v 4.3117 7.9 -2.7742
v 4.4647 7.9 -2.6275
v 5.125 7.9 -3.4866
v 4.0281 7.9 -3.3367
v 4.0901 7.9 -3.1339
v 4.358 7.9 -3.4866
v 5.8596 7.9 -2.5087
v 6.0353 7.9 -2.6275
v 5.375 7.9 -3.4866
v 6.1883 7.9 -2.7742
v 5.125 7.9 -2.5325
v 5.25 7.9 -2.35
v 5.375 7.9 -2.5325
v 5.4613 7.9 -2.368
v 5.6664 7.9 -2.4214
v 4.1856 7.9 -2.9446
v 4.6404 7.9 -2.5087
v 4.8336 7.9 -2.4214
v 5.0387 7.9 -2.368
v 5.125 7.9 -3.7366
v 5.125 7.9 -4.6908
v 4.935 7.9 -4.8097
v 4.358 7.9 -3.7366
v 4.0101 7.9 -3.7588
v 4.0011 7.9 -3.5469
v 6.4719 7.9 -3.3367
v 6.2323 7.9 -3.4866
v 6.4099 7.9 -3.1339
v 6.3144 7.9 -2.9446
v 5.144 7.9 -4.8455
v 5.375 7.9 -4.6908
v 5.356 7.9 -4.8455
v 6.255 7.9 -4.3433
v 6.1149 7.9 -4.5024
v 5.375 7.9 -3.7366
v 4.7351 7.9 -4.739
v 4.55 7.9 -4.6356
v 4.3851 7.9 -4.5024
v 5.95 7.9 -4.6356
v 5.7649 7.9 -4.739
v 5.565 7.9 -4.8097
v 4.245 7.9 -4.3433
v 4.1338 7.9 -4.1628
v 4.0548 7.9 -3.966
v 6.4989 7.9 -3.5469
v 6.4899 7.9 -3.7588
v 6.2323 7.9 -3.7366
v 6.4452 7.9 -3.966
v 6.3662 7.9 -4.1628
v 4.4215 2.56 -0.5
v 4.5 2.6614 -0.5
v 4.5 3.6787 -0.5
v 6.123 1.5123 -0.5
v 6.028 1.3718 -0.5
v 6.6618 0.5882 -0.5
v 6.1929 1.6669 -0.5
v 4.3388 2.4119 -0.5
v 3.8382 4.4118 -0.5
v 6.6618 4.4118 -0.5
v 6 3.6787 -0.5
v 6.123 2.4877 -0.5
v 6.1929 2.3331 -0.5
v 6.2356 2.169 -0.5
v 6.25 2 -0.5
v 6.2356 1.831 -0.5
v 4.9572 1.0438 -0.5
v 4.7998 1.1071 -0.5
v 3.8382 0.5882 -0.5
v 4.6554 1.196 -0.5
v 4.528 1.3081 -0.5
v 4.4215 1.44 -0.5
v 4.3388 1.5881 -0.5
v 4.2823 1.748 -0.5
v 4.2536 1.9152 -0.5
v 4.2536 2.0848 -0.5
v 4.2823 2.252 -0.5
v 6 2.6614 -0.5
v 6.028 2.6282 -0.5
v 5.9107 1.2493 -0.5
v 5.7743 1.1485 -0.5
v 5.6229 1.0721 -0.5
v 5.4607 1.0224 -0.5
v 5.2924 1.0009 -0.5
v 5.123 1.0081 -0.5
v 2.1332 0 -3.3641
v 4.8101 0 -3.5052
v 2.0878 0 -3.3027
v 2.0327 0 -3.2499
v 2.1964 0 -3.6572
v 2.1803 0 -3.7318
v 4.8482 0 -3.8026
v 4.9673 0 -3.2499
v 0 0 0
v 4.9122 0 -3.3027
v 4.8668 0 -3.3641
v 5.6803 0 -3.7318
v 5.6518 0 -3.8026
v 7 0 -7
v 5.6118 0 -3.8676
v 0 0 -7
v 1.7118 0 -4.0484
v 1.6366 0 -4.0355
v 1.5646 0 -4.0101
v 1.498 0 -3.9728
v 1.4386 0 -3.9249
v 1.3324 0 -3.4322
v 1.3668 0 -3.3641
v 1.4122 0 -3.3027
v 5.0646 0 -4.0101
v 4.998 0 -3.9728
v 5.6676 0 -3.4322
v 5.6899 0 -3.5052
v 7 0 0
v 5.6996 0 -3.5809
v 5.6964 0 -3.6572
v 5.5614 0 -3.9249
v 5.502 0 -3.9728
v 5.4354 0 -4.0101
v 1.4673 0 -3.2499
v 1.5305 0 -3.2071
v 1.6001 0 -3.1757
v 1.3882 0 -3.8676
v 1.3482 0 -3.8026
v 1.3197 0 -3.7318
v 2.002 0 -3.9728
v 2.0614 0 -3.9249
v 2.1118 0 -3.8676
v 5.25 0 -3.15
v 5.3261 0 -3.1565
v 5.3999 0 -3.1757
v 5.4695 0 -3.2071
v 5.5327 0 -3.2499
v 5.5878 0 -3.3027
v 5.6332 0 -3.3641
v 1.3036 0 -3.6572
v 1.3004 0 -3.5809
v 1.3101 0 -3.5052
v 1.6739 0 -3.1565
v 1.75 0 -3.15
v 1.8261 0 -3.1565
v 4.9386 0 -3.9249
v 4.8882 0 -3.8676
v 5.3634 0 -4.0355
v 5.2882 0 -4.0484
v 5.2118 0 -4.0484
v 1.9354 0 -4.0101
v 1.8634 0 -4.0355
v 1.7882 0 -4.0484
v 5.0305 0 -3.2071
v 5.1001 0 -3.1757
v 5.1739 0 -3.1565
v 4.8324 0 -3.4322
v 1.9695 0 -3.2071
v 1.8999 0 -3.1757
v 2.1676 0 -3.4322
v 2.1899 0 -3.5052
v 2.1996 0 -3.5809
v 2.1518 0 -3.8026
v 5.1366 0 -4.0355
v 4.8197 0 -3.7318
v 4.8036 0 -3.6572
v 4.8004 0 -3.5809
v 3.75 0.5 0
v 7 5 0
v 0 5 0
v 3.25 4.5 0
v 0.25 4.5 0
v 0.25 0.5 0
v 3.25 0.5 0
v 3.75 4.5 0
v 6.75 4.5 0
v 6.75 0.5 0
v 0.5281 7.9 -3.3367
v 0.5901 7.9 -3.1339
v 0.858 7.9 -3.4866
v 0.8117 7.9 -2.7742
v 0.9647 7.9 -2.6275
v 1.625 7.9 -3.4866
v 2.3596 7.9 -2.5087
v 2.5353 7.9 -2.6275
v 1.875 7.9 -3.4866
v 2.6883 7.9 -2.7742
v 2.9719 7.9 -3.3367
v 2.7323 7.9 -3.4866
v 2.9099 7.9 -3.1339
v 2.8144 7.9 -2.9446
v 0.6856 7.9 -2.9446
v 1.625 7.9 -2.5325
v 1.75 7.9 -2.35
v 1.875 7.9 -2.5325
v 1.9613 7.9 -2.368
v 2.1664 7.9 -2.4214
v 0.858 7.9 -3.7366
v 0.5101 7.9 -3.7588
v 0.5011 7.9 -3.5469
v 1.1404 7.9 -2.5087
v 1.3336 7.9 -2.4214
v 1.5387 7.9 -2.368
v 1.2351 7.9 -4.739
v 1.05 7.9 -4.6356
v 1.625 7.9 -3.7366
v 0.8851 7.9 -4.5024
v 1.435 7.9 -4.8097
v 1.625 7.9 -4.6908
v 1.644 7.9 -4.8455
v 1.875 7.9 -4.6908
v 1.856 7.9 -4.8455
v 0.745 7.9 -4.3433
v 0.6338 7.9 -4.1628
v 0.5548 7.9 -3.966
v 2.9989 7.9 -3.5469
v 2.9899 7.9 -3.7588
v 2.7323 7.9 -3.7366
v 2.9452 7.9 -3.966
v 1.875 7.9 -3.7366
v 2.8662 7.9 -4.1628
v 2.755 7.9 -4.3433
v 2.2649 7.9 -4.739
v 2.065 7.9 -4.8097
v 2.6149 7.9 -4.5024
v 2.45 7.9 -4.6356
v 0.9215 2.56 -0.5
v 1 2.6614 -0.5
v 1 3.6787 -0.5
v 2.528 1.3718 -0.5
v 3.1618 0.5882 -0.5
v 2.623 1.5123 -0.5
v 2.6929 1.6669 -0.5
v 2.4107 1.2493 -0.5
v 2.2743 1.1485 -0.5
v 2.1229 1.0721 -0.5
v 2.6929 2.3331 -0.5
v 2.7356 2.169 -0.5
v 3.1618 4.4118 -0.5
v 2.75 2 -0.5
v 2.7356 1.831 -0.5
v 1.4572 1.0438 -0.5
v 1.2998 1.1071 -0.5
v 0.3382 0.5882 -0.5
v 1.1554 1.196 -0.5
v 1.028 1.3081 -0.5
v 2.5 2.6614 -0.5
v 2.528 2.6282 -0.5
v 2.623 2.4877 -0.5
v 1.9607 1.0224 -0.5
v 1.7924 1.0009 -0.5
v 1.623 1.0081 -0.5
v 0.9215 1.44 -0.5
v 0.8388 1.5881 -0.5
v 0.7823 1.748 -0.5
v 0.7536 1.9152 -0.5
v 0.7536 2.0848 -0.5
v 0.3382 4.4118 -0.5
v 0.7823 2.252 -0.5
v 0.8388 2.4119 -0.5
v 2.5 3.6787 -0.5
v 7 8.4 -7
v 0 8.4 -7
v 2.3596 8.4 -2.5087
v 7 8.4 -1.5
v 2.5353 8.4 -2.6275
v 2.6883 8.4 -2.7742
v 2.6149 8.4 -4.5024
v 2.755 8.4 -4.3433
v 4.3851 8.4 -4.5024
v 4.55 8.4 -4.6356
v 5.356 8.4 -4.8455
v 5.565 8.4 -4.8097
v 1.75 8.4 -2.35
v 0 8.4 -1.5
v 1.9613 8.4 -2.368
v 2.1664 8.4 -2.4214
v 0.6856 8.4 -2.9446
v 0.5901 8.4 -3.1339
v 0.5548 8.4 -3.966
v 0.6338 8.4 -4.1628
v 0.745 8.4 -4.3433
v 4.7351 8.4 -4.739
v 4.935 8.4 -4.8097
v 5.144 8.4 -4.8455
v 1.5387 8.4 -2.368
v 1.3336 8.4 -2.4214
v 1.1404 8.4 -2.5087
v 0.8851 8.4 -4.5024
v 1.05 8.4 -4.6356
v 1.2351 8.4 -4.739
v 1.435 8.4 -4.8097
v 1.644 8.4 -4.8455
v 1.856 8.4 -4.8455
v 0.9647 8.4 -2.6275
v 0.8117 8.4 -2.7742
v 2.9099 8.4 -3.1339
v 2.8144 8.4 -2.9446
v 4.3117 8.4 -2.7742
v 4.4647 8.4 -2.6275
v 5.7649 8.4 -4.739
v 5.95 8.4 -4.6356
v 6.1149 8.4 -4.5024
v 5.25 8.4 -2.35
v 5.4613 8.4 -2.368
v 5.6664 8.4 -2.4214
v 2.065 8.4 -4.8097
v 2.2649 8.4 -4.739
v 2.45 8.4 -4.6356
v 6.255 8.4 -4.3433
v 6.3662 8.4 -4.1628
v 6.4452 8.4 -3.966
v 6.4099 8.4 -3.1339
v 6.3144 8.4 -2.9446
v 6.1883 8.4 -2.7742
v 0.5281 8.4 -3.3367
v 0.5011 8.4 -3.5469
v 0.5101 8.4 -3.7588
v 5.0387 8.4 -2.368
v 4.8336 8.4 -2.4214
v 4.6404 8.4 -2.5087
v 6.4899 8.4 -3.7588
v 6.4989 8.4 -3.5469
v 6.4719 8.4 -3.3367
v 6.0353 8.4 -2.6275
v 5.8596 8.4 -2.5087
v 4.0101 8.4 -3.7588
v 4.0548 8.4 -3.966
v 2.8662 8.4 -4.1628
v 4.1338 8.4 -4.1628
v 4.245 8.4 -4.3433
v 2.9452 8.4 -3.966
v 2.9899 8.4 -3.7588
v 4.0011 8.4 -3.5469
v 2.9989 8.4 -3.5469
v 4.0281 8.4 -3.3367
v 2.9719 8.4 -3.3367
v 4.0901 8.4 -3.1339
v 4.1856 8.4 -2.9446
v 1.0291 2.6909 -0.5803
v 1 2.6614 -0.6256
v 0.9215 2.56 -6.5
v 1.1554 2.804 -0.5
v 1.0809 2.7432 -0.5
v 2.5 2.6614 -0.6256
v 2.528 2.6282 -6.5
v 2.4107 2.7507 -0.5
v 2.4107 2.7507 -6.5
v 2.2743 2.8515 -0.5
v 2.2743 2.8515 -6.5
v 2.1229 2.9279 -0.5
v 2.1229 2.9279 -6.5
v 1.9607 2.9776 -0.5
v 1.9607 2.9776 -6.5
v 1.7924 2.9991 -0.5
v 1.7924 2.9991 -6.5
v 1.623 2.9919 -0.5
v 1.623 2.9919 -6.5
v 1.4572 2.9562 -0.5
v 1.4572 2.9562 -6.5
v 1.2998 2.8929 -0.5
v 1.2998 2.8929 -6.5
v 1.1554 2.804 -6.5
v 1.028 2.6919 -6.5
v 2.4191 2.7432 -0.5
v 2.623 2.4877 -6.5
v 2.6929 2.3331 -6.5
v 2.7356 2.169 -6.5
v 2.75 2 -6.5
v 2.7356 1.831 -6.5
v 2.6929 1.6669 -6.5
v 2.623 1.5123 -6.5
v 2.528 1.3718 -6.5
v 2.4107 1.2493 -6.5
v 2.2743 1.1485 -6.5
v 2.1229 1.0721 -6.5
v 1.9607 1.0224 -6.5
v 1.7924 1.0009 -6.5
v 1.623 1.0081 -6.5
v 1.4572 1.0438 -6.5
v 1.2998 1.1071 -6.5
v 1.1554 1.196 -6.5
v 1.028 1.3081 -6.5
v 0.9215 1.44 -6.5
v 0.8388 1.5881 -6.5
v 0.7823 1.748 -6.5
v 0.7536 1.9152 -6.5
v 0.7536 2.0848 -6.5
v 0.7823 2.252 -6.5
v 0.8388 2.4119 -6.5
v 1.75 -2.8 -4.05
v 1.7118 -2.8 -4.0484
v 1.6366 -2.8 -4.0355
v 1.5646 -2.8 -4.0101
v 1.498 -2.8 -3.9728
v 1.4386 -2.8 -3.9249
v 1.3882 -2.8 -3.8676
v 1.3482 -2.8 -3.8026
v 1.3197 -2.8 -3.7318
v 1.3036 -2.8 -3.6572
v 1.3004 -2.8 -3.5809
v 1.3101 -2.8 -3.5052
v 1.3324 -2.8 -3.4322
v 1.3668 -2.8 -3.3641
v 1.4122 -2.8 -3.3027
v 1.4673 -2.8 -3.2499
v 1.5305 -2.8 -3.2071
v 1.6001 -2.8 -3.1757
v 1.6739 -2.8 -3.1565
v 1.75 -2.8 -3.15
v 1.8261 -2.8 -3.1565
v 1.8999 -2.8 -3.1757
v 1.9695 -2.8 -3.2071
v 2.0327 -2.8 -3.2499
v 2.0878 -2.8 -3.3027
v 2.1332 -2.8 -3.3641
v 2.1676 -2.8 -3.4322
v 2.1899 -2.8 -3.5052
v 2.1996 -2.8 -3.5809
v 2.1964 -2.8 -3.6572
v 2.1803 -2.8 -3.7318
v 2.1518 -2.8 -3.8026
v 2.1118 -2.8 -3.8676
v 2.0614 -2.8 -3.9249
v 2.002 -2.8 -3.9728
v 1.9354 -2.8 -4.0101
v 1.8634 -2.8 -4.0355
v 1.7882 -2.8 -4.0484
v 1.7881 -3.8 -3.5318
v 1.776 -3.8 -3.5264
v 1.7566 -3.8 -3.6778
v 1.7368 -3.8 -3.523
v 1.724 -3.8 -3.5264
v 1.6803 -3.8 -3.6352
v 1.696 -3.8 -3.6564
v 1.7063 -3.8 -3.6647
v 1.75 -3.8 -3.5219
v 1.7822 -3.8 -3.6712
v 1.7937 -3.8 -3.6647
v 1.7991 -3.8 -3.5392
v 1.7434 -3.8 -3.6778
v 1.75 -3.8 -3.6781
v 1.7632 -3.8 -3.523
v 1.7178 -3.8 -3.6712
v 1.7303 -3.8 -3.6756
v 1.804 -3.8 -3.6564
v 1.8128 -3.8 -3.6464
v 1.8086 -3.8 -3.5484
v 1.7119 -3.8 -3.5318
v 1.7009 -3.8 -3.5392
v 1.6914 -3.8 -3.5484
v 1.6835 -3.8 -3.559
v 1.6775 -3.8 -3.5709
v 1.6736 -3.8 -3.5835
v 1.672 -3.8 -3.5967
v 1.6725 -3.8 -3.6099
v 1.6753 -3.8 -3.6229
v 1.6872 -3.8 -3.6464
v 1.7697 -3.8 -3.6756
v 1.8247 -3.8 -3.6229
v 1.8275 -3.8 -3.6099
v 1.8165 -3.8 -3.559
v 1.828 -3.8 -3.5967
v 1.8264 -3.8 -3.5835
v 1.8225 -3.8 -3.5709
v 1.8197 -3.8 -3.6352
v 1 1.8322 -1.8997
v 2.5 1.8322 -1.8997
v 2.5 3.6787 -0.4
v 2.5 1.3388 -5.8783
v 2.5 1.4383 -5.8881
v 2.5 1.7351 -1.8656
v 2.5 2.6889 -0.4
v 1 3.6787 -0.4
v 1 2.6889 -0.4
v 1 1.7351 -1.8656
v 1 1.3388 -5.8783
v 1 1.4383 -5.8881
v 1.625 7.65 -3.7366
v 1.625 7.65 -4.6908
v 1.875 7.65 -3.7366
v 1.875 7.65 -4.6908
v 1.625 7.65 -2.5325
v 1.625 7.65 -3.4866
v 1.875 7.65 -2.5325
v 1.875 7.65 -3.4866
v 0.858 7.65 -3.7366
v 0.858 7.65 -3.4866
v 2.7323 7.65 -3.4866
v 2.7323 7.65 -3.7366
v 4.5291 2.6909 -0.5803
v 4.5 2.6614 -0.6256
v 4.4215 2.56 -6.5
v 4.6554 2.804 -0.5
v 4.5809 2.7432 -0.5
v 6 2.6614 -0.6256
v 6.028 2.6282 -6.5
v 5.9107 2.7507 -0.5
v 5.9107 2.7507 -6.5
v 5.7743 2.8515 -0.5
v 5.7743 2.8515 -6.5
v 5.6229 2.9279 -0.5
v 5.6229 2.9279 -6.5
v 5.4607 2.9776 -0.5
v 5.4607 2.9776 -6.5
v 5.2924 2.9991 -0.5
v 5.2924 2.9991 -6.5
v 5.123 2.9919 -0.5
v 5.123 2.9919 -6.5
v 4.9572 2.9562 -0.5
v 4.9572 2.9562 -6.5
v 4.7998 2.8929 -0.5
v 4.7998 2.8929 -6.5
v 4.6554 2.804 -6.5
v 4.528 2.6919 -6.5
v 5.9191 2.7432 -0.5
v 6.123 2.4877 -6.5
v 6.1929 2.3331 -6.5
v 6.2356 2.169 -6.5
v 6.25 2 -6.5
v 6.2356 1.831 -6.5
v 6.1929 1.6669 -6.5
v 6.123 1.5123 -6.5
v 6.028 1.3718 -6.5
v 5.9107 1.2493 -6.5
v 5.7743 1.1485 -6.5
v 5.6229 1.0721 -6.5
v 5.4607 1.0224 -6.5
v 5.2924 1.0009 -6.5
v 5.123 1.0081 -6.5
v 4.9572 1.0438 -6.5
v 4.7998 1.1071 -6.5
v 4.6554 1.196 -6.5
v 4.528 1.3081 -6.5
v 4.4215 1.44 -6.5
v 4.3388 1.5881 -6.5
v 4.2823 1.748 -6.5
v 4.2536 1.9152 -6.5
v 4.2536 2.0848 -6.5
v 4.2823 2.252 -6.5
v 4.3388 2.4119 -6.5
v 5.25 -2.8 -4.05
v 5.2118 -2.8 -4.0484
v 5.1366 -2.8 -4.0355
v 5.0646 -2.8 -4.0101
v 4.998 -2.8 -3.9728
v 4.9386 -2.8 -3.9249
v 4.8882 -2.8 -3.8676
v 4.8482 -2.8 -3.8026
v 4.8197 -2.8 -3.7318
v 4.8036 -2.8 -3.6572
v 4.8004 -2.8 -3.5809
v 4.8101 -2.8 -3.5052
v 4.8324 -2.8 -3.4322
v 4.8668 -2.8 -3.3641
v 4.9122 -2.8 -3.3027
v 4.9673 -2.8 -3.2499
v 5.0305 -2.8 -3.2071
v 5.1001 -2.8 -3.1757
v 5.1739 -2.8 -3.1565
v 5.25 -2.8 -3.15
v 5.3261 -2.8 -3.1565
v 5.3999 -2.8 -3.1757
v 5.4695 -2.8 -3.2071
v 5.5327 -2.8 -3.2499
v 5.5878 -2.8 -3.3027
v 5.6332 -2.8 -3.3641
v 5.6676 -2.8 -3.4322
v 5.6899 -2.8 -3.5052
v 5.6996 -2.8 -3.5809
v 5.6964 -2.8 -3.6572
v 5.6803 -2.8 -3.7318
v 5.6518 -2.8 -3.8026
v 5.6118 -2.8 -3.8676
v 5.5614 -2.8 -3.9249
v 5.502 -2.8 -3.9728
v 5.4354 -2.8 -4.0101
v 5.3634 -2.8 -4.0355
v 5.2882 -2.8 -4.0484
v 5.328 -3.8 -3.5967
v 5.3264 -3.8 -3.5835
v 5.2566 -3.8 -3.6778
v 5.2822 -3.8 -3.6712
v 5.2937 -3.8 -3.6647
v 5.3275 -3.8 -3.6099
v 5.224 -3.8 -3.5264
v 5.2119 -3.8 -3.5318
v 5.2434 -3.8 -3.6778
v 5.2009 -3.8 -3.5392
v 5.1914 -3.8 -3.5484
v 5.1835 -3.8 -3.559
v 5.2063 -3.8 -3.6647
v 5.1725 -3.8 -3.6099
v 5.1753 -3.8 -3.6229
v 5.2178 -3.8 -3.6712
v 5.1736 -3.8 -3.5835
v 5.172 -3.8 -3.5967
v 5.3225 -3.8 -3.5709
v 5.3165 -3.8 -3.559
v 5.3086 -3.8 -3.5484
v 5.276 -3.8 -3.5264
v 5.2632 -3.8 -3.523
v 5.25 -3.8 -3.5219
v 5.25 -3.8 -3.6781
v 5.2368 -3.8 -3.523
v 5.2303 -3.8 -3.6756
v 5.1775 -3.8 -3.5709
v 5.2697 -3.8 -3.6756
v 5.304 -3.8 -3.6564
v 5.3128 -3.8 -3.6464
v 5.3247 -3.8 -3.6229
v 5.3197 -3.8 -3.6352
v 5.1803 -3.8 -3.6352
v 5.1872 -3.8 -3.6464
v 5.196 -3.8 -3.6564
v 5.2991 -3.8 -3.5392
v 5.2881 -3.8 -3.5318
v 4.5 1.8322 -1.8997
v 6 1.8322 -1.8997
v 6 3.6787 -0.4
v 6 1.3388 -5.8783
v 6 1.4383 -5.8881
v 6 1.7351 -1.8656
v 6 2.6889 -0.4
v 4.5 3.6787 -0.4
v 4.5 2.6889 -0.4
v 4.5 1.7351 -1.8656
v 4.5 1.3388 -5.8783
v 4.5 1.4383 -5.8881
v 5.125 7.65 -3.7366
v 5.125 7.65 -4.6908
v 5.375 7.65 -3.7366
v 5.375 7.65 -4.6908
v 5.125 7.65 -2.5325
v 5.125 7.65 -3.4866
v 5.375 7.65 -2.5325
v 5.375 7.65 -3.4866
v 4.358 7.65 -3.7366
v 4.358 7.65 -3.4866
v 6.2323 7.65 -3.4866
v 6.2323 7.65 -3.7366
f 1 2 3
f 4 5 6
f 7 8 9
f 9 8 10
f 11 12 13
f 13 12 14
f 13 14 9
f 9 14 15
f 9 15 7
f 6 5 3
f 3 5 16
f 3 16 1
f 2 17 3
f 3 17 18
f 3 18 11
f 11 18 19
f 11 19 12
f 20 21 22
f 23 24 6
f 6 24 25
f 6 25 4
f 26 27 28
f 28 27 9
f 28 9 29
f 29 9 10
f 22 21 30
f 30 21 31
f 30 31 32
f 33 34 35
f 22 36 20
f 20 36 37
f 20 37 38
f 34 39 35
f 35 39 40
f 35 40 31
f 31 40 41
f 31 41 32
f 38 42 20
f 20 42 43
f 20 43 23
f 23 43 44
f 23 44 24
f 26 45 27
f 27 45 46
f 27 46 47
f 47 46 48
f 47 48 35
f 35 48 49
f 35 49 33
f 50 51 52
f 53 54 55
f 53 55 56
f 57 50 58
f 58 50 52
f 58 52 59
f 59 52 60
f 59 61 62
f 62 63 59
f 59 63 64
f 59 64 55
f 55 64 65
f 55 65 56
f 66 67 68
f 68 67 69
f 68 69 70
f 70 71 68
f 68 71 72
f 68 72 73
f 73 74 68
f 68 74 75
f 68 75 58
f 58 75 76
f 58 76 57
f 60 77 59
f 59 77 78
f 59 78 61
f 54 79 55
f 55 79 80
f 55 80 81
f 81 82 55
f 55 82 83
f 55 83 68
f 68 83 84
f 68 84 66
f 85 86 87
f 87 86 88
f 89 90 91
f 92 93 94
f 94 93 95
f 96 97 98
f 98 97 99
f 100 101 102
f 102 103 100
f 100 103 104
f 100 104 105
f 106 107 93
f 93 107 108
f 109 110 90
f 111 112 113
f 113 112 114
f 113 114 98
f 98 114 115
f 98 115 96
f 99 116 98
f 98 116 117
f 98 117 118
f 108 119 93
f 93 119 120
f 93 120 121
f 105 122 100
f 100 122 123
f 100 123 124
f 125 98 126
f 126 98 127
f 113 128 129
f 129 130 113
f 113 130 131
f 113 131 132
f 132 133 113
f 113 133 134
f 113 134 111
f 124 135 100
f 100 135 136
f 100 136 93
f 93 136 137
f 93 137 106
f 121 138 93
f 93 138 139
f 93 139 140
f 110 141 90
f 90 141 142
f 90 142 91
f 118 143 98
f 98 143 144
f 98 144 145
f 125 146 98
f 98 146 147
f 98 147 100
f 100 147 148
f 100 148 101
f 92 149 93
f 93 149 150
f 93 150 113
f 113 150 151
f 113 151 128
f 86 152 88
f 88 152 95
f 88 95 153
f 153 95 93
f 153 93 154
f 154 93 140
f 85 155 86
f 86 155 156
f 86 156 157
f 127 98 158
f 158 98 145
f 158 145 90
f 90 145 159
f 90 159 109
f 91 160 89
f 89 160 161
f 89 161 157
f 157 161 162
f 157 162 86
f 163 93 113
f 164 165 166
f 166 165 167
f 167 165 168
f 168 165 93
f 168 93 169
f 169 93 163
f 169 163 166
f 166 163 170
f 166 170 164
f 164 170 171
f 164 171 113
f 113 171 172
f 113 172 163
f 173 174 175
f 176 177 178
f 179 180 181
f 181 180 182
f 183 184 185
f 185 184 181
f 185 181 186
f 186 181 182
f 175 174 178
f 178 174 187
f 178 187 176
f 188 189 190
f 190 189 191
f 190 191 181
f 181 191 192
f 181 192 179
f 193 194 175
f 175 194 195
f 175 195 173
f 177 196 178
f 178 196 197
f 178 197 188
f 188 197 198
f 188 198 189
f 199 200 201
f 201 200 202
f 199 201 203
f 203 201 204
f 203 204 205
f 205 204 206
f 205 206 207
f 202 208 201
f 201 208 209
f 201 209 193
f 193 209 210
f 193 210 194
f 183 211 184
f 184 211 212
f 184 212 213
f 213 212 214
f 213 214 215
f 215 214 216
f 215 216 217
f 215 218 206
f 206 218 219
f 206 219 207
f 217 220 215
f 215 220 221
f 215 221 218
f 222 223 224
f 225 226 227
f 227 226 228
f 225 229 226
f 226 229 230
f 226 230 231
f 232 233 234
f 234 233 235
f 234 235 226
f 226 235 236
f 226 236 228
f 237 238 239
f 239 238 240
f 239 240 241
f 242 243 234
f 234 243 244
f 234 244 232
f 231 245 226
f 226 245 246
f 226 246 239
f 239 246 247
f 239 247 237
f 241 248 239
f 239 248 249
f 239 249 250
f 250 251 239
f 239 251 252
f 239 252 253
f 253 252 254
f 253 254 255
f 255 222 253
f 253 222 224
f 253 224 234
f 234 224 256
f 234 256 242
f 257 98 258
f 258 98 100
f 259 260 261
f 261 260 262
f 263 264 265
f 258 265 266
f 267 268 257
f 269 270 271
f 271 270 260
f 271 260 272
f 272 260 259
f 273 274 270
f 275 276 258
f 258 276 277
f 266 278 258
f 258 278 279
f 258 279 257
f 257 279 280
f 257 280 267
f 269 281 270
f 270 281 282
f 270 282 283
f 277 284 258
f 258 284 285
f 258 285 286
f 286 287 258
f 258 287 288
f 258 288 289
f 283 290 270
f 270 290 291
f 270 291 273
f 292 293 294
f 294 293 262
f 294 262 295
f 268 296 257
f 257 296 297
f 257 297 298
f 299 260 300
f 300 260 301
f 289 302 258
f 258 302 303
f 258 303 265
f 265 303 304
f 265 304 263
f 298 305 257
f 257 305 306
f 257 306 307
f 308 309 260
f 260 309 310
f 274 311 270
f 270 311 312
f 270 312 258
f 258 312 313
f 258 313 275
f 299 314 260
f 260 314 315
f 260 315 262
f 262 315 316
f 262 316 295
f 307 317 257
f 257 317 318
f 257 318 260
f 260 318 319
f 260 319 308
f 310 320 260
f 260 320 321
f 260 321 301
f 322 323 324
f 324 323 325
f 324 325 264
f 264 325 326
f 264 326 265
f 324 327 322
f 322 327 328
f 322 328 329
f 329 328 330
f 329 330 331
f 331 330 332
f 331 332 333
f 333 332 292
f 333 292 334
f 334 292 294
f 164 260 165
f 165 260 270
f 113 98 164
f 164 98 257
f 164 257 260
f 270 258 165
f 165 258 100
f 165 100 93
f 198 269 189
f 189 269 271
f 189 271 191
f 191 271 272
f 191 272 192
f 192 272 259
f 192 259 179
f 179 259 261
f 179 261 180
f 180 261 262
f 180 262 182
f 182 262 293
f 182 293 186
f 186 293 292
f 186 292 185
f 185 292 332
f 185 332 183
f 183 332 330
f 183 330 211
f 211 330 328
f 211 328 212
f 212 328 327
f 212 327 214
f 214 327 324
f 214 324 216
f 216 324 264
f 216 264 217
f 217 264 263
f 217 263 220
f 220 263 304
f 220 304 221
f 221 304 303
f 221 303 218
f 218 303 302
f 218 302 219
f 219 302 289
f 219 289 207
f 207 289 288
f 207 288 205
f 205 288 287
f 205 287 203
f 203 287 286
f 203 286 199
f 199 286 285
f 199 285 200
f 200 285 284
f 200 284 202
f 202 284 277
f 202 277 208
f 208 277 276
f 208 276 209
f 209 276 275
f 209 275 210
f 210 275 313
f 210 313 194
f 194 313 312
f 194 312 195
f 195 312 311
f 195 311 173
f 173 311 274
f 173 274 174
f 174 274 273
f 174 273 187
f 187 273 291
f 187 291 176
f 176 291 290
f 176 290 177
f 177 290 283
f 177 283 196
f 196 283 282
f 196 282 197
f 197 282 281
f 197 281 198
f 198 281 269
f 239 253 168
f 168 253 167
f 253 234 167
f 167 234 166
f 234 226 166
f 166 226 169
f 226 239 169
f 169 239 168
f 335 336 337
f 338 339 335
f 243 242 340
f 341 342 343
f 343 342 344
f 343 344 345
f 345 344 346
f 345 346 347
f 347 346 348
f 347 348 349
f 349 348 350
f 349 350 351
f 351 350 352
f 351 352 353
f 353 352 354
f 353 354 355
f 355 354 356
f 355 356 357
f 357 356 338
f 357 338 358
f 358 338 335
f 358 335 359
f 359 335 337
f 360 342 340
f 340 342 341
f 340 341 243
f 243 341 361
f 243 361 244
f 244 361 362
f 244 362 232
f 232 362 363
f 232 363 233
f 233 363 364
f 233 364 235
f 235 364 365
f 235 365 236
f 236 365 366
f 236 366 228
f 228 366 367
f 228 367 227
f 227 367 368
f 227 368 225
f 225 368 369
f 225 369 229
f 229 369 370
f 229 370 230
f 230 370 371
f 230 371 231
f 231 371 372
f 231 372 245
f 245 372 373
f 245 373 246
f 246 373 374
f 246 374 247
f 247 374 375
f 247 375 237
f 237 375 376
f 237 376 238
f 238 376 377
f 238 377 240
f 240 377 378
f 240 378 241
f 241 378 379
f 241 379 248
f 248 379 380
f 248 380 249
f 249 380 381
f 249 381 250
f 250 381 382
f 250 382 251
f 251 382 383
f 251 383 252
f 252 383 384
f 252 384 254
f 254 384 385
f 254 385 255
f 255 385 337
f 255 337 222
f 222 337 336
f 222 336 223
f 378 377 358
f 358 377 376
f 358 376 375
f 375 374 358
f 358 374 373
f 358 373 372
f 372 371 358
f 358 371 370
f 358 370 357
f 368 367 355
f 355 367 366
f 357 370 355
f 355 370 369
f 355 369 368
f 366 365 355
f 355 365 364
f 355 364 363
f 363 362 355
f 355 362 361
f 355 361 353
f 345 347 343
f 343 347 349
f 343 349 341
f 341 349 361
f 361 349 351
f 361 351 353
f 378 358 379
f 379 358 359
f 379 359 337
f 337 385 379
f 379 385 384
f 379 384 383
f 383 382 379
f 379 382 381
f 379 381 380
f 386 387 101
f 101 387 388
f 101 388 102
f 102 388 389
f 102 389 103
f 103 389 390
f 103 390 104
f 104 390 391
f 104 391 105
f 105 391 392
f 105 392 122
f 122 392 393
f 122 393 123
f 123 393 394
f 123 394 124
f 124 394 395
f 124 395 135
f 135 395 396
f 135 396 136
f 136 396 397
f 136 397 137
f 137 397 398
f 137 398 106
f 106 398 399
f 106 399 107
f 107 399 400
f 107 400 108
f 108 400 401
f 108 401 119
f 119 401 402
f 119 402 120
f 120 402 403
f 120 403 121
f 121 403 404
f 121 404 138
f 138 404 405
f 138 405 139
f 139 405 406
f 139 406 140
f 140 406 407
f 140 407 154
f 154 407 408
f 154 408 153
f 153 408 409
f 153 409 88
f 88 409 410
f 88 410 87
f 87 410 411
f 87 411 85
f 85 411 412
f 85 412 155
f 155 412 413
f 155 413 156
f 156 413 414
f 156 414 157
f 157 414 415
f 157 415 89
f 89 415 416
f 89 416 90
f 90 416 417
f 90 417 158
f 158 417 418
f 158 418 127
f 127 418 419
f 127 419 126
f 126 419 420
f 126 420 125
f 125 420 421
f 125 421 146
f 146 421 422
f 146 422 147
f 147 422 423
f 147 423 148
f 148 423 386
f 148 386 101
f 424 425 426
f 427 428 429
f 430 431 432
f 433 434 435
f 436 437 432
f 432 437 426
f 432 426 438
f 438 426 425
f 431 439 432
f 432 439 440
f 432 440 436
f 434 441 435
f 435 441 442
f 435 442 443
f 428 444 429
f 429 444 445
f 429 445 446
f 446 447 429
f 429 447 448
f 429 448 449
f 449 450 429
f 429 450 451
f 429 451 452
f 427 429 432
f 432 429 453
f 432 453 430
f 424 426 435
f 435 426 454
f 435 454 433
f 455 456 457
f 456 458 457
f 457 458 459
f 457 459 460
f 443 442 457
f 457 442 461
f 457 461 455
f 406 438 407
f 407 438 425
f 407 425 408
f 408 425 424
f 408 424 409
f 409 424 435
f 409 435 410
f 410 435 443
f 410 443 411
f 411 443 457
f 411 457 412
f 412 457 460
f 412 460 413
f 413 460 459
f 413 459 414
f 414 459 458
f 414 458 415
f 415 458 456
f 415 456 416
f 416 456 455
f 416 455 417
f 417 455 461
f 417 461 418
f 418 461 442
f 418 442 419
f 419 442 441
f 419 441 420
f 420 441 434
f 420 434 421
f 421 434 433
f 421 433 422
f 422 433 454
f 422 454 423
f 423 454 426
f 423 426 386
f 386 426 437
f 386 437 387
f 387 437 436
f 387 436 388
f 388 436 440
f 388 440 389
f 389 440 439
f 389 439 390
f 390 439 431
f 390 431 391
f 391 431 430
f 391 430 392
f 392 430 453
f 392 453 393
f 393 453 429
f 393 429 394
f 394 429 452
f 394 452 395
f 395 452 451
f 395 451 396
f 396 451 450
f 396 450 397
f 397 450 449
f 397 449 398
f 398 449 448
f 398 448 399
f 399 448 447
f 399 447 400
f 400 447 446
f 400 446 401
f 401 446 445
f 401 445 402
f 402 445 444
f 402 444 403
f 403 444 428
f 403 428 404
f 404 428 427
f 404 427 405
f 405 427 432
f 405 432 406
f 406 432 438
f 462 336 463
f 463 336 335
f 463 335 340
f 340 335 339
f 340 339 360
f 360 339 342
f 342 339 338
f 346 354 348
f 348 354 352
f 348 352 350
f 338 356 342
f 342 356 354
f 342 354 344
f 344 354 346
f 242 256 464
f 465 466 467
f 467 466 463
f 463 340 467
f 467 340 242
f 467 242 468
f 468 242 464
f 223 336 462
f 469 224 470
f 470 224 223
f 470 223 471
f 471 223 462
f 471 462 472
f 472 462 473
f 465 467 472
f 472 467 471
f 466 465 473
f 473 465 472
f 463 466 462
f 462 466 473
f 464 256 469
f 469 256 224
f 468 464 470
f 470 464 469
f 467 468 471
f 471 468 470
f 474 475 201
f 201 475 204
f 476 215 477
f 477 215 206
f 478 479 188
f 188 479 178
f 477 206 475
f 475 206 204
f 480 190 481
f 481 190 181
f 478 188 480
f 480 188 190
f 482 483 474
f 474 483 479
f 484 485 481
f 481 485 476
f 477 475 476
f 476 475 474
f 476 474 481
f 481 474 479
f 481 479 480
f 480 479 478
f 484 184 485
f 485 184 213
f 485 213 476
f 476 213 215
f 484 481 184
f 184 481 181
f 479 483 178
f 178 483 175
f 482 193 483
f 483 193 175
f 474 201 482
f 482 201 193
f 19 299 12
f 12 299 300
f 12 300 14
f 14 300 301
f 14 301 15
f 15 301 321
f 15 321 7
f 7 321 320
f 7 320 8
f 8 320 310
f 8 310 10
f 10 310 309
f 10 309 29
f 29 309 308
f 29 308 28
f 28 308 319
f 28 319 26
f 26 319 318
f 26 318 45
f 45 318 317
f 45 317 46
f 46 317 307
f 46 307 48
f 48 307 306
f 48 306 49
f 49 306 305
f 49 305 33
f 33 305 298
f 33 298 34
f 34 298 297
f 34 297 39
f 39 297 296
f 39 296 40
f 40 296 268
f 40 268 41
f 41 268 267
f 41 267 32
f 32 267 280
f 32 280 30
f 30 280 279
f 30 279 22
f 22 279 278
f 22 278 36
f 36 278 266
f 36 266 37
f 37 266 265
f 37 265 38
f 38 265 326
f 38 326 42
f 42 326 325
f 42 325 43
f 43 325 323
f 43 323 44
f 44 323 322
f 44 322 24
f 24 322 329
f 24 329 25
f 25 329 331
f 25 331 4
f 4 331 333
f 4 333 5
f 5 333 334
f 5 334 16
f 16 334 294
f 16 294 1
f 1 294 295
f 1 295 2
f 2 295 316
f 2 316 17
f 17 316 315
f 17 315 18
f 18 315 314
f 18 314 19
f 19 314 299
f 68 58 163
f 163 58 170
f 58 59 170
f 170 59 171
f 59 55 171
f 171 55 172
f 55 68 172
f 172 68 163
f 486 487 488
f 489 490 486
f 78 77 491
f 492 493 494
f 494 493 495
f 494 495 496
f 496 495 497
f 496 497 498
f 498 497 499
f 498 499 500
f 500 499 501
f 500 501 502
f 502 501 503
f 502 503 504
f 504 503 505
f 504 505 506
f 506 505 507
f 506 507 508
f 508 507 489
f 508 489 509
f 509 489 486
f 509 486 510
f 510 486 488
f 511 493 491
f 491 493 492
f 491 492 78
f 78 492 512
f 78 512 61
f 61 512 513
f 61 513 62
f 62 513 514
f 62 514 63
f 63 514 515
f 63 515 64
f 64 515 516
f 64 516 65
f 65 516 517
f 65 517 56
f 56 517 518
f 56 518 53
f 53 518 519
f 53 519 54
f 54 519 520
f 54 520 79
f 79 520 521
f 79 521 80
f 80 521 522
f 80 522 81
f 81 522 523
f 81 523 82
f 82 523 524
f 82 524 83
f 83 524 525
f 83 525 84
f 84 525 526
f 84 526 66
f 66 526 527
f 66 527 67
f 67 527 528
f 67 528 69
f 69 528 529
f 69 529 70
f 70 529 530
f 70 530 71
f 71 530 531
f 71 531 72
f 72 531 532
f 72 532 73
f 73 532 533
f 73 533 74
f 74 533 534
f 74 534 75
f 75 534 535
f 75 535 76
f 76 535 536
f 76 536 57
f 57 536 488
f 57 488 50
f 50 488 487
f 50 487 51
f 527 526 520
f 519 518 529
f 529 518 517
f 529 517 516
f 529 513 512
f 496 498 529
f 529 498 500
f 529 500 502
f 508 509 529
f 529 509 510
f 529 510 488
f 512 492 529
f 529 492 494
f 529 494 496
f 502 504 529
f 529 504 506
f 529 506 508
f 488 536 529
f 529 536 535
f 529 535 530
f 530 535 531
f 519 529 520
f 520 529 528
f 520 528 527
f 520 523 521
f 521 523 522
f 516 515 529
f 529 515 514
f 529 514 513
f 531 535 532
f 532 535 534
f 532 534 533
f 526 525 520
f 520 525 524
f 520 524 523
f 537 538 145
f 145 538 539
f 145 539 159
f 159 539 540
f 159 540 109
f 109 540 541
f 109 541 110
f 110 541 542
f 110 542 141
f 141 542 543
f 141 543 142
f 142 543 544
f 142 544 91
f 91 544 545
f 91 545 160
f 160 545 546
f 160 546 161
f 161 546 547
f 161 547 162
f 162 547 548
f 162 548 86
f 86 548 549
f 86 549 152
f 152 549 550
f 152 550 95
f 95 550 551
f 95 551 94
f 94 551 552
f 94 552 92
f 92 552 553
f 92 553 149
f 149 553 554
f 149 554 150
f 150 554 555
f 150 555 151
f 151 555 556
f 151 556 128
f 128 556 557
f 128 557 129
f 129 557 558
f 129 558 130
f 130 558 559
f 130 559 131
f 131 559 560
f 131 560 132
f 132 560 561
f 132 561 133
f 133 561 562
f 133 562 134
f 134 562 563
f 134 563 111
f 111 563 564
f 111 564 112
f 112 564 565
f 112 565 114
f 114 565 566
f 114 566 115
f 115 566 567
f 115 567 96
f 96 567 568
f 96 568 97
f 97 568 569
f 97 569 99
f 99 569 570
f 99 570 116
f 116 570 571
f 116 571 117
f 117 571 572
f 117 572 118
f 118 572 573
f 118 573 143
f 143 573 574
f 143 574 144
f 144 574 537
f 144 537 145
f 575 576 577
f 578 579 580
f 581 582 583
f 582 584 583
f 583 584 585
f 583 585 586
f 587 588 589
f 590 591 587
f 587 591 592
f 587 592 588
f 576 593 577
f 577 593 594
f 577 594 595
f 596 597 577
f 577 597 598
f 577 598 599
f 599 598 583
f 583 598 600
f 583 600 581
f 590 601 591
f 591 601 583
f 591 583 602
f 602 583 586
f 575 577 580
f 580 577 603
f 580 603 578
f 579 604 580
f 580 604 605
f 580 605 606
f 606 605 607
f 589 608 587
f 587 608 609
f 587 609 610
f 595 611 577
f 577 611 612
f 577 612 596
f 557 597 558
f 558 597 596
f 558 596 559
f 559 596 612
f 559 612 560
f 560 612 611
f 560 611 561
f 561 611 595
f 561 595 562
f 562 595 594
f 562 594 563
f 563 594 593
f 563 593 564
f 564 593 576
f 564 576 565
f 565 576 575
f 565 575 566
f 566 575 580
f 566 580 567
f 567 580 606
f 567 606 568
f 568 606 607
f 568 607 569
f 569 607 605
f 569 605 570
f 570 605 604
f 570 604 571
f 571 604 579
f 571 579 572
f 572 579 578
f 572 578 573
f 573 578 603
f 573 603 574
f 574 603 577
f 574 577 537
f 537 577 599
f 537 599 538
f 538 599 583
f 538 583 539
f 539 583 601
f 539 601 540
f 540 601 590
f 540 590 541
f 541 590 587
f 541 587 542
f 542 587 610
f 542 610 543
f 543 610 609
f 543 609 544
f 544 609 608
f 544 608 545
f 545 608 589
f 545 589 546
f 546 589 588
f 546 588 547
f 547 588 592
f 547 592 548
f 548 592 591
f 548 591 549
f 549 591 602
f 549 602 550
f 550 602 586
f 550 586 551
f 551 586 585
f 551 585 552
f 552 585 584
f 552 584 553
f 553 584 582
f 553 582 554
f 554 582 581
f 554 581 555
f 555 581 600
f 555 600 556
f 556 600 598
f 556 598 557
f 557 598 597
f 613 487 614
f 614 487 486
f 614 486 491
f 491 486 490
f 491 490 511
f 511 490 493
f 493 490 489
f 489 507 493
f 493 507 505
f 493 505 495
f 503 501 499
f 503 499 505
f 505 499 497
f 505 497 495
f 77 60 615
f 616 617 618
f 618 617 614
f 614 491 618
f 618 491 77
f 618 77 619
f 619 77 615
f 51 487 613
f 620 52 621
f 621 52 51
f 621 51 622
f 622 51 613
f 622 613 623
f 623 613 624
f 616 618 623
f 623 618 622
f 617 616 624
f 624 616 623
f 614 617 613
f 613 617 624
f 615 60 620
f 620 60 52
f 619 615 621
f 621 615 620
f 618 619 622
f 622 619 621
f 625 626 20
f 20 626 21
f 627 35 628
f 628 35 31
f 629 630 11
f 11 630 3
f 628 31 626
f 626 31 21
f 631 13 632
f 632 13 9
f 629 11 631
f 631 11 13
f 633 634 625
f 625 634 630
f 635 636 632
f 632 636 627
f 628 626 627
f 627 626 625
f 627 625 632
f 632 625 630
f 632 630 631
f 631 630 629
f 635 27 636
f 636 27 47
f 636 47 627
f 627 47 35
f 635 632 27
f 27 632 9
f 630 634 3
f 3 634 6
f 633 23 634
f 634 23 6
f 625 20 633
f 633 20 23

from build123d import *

# Parameters (mm, degrees)
BOSS_EXTRUDE1_DEPTH         = 7
SKETCH2_R                   = 1.25
CUT_EXTRUDE1_DEPTH          = 0.5
SKETCH3_W                   = 3
SKETCH3_H                   = 4
CUT_EXTRUDE2_DEPTH          = 0.5
CUT_EXTRUDE2_TAPER          = 10
SKETCH4_R                   = 1
CUT_EXTRUDE3_DEPTH          = 6
SKETCH6_R                   = 0.45
BOSS_EXTRUDE3_DEPTH         = 3.8
CHAMFER1_SIZE               = 1
CHAMFER1_SIZE2              = 0.371896666
EXTRUDE_THIN1_DEPTH         = 0.75
SKETCH8_W                   = 0.25
SKETCH8_H                   = 2.158330758
SKETCH8_W_2                 = 1.874325027
SKETCH8_H_2                 = 0.25
CUT_EXTRUDE_THIN1_DEPTH     = 0.25
LPATTERN1_COUNT             = 2
LPATTERN1_PITCH             = 3.5
CHAMFER1_OF_LPATTERN1_SIZE2 = 0.371896666
CHAMFER1_OF_LPATTERN1_SIZE  = 1


with BuildPart() as part:
    # Sketch1 → Boss-Extrude1 (new body)
    with BuildSketch(Plane(origin=(0, 0, 0), x_dir=(0, 0, -1), z_dir=(1, 0, 0))):
        Polygon((0, 5), (1.5, 8.4), (7, 8.4), (7, 0), (0, 0), align=None)
    extrude(amount=BOSS_EXTRUDE1_DEPTH)

    # Sketch2 → Cut-Extrude1 (cut)
    with BuildSketch(Plane(origin=(0, 8.4, 0), x_dir=(1, 0, 0), z_dir=(0, 1, 0))):
        with Locations((1.75, 3.6)):
            Circle(SKETCH2_R)
    cut_extrude1 = extrude(amount=-CUT_EXTRUDE1_DEPTH, mode=Mode.SUBTRACT)

    # Sketch3 → Cut-Extrude2 (cut)
    with BuildSketch(Plane.XY):
        with Locations((1.75, 2.5)):
            Rectangle(SKETCH3_W, SKETCH3_H)
    cut_extrude2 = extrude(amount=-CUT_EXTRUDE2_DEPTH, taper=CUT_EXTRUDE2_TAPER, mode=Mode.SUBTRACT)

    # Sketch4 → Cut-Extrude3 (cut)
    with BuildSketch(Plane.XY.offset(-0.5)):
        with Locations((1.75, 2)):
            Circle(SKETCH4_R)
    cut_extrude3 = extrude(amount=-CUT_EXTRUDE3_DEPTH, mode=Mode.SUBTRACT)

    # Sketch6 → Boss-Extrude3 (add)
    with BuildSketch(Plane.XZ):
        with Locations((1.75, -3.6)):
            Circle(SKETCH6_R)
    boss_extrude3 = extrude(amount=BOSS_EXTRUDE3_DEPTH)

    # Chamfer1
    chamfer1_edges = [part.edges().sort_by_distance(p)[0] for p in [
        (1.3, -3.8, -3.6),
    ]]
    chamfer1_side = [part.faces().sort_by_distance(p)[0] for p in [
        (1.3, -1.9, -3.6),
    ]]
    chamfer(chamfer1_edges, length=CHAMFER1_SIZE, length2=CHAMFER1_SIZE2, reference=chamfer1_side[0])

    # Sketch7 → Extrude-Thin1 (add, symmetric)
    with BuildSketch(Plane(origin=(1.75, 0, 0), x_dir=(0, 0, -1), z_dir=(1, 0, 0))):
        Polygon((0.5, 3.678716588), (0.5, 2.743158903), (1.89970396, 1.832221158), (5.88813409, 1.438302133), (5.878305368, 1.338786324), (1.865601336, 1.735102771), (0.4, 2.688927019), (0.4, 3.678716588), align=None)
    extrude_thin1 = extrude(amount=EXTRUDE_THIN1_DEPTH, both=True)

    # Sketch8 → Cut-Extrude-Thin1 (cut, symmetric)
    with BuildSketch(Plane(origin=(0, 7.9, 0), x_dir=(1, 0, 0), z_dir=(0, 1, 0))):
        with Locations((1.75, 3.611637798)):
            Rectangle(SKETCH8_W, SKETCH8_H)
        with Locations((1.795143175, 3.611637798)):
            Rectangle(SKETCH8_W_2, SKETCH8_H_2)
    cut_extrude_thin1 = extrude(amount=CUT_EXTRUDE_THIN1_DEPTH, both=True, mode=Mode.SUBTRACT)

    # LPattern1: Cut-Extrude1, Cut-Extrude2, Cut-Extrude3, Boss-Extrude3, Extrude-Thin1, Cut-Extrude-Thin1 ×2
    with Locations(*[(i * LPATTERN1_PITCH, 0, 0) for i in range(1, LPATTERN1_COUNT)]):
        add(cut_extrude1, mode=Mode.SUBTRACT)
        add(cut_extrude2, mode=Mode.SUBTRACT)
        add(cut_extrude3, mode=Mode.SUBTRACT)
        add(boss_extrude3)
        add(extrude_thin1)
        add(cut_extrude_thin1, mode=Mode.SUBTRACT)

    # Chamfer1 of LPattern1
    chamfer1_of_lpattern1_edges = [part.edges().sort_by_distance(p)[0] for p in [
        (4.8, -3.8, -3.6),
    ]]
    chamfer(chamfer1_of_lpattern1_edges, length=CHAMFER1_OF_LPATTERN1_SIZE, length2=CHAMFER1_OF_LPATTERN1_SIZE2)


solid = part.part
